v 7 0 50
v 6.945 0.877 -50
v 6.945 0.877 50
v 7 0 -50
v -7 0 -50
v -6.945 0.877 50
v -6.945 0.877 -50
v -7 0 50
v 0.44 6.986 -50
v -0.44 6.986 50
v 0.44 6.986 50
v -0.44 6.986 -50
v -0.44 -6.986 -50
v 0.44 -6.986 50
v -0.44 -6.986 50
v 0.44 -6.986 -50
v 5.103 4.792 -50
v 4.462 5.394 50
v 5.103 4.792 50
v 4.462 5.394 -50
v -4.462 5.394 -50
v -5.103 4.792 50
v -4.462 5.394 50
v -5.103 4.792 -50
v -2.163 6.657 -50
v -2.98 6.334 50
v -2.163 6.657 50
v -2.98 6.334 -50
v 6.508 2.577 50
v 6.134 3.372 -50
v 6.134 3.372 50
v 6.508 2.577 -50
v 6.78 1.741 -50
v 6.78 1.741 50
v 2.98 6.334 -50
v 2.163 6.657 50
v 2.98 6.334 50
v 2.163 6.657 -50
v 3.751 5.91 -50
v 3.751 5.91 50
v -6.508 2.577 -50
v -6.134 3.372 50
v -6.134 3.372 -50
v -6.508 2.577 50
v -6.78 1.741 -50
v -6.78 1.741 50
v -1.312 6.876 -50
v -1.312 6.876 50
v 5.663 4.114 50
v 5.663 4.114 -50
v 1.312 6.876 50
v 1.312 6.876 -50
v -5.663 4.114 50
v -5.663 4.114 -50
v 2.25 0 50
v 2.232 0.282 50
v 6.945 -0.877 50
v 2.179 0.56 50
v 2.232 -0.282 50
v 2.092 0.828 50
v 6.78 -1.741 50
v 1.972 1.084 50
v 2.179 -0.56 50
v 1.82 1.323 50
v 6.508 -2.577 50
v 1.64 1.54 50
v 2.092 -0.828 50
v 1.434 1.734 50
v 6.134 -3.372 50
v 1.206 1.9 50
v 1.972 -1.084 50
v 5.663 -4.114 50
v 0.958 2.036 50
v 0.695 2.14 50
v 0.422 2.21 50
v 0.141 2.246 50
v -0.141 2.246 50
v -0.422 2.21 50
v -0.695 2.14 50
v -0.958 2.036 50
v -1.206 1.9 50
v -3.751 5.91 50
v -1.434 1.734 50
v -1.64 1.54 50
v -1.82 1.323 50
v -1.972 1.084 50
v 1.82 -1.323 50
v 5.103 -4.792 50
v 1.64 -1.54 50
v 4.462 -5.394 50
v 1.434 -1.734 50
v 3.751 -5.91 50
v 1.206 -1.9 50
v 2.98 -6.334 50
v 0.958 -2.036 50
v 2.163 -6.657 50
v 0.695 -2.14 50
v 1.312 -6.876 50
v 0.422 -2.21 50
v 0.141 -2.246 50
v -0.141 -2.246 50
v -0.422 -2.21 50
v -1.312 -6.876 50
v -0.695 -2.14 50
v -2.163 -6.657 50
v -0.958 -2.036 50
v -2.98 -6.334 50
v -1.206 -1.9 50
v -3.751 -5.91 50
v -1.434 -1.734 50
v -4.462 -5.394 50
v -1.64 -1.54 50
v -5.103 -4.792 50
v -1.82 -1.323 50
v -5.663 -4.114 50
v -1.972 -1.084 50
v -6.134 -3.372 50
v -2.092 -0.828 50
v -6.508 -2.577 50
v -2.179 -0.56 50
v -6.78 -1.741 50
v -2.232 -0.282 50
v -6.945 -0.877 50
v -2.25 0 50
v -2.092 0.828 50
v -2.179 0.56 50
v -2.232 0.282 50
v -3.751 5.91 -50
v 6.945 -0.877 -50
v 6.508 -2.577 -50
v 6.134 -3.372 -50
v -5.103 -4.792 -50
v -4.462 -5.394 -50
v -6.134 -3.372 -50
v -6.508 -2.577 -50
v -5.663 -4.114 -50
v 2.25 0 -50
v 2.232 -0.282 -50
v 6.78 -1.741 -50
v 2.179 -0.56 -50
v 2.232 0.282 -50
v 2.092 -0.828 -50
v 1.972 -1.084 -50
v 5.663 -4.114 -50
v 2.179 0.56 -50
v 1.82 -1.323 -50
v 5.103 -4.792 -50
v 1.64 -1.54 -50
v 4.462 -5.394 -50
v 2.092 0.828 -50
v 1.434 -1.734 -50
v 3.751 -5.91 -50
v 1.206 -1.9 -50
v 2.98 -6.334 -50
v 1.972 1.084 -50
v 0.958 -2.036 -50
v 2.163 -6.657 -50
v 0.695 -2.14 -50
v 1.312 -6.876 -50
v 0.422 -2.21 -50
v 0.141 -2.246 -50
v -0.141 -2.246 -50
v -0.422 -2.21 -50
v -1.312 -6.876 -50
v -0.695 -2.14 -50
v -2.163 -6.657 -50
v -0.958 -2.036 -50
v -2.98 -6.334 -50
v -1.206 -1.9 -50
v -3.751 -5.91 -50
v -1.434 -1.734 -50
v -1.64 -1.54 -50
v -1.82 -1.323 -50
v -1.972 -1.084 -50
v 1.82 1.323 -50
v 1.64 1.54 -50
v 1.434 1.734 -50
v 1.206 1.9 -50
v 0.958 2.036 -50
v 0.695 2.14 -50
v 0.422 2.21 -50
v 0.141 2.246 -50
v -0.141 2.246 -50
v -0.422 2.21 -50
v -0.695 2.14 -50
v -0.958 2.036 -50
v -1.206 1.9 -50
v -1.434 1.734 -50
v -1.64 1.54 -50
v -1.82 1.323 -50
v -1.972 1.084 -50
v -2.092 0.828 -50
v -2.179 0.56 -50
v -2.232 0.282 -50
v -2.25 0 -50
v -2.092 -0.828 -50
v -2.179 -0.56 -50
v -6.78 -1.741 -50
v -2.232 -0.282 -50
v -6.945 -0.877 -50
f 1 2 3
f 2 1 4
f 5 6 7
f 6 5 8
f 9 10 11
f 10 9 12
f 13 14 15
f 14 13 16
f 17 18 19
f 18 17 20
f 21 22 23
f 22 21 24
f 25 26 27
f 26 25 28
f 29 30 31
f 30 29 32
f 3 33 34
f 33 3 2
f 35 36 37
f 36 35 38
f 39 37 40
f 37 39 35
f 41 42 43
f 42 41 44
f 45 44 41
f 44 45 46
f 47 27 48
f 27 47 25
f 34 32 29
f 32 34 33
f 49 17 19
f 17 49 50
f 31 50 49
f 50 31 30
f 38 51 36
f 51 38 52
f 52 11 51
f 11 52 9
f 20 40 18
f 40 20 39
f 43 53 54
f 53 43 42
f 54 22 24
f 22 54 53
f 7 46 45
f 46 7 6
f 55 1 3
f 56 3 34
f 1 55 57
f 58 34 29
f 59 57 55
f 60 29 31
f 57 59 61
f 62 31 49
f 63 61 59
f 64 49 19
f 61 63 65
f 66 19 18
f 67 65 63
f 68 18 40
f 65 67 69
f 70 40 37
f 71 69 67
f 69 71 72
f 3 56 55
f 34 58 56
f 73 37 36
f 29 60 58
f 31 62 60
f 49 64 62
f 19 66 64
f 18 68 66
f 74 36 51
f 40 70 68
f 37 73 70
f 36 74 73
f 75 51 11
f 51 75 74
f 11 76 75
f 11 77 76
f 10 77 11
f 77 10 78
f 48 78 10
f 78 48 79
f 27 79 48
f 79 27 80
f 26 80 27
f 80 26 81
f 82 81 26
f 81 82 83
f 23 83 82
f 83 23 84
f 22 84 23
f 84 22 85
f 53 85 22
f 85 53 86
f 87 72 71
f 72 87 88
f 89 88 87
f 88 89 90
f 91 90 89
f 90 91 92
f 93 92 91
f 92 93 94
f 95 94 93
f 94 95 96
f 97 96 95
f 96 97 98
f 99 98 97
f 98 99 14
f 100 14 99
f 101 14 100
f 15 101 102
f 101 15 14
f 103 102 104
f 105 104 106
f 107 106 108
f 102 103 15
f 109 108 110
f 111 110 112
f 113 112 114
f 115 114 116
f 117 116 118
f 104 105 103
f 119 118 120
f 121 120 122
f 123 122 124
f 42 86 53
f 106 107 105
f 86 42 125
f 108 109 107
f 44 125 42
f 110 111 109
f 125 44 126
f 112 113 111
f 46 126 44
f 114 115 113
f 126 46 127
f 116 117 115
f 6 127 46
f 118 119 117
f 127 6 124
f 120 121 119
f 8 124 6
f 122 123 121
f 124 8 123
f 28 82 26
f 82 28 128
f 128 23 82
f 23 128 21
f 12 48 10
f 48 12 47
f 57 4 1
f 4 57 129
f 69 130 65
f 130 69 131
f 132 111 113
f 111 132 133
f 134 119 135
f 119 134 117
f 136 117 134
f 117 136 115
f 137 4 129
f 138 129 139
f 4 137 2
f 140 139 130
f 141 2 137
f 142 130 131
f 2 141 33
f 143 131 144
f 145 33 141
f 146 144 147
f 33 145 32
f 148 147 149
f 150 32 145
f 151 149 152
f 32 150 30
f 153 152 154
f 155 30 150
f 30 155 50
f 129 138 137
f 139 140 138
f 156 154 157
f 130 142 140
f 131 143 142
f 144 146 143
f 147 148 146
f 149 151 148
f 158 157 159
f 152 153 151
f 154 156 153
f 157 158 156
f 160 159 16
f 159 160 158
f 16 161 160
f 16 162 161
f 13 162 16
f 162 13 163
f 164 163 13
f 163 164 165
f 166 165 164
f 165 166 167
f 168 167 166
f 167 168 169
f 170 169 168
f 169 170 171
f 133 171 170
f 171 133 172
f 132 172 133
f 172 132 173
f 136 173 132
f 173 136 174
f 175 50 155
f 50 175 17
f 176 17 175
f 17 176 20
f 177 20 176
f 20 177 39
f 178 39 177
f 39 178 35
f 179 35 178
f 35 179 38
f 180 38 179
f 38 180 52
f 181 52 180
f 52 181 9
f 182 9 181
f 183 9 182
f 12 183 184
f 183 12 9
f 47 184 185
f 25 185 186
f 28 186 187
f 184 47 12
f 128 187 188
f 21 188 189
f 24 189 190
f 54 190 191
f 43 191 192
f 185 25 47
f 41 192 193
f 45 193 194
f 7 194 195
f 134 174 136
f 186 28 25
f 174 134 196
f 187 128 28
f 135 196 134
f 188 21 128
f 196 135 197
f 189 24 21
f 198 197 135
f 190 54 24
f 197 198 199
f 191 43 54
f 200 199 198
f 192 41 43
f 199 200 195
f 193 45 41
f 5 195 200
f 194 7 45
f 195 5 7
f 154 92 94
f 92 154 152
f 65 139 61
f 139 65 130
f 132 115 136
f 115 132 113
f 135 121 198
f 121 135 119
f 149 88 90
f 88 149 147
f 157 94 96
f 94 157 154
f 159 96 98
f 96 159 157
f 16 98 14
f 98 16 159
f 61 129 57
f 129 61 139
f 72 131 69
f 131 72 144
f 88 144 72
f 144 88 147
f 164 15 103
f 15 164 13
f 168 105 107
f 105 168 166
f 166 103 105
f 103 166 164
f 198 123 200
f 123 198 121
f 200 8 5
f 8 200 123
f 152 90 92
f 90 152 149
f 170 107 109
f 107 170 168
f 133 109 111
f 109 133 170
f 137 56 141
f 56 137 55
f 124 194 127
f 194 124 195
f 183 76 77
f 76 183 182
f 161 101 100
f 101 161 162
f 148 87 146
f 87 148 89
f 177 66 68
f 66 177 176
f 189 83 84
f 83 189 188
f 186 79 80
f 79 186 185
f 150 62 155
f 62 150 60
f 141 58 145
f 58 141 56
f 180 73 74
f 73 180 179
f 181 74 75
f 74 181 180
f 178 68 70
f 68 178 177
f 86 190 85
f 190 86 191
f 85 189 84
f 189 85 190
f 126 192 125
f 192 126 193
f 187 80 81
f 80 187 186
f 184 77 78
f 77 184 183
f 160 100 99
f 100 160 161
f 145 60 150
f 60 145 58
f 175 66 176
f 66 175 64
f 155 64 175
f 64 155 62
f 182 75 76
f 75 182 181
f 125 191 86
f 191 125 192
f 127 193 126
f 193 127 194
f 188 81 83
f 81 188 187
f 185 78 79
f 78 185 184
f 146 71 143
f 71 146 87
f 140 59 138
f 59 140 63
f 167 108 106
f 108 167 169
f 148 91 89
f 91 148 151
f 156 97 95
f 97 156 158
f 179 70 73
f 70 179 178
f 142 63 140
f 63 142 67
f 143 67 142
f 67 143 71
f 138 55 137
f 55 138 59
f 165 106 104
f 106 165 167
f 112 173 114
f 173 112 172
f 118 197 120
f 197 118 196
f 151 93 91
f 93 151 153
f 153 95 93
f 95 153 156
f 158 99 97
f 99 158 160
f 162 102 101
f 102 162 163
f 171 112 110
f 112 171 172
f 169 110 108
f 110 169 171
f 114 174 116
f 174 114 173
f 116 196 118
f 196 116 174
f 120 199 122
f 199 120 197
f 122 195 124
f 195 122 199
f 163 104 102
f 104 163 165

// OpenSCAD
$fn = 50;


difference() {
	union() {
		translate(v = [0, 0, -50.0000000000]) {
			cylinder(h = 100, r = 7.0000000000);
		}
	}
	union() {
		translate(v = [0, 0, -100.0000000000]) {
			cylinder(h = 200, r = 2.2500000000);
		}
	}
}
